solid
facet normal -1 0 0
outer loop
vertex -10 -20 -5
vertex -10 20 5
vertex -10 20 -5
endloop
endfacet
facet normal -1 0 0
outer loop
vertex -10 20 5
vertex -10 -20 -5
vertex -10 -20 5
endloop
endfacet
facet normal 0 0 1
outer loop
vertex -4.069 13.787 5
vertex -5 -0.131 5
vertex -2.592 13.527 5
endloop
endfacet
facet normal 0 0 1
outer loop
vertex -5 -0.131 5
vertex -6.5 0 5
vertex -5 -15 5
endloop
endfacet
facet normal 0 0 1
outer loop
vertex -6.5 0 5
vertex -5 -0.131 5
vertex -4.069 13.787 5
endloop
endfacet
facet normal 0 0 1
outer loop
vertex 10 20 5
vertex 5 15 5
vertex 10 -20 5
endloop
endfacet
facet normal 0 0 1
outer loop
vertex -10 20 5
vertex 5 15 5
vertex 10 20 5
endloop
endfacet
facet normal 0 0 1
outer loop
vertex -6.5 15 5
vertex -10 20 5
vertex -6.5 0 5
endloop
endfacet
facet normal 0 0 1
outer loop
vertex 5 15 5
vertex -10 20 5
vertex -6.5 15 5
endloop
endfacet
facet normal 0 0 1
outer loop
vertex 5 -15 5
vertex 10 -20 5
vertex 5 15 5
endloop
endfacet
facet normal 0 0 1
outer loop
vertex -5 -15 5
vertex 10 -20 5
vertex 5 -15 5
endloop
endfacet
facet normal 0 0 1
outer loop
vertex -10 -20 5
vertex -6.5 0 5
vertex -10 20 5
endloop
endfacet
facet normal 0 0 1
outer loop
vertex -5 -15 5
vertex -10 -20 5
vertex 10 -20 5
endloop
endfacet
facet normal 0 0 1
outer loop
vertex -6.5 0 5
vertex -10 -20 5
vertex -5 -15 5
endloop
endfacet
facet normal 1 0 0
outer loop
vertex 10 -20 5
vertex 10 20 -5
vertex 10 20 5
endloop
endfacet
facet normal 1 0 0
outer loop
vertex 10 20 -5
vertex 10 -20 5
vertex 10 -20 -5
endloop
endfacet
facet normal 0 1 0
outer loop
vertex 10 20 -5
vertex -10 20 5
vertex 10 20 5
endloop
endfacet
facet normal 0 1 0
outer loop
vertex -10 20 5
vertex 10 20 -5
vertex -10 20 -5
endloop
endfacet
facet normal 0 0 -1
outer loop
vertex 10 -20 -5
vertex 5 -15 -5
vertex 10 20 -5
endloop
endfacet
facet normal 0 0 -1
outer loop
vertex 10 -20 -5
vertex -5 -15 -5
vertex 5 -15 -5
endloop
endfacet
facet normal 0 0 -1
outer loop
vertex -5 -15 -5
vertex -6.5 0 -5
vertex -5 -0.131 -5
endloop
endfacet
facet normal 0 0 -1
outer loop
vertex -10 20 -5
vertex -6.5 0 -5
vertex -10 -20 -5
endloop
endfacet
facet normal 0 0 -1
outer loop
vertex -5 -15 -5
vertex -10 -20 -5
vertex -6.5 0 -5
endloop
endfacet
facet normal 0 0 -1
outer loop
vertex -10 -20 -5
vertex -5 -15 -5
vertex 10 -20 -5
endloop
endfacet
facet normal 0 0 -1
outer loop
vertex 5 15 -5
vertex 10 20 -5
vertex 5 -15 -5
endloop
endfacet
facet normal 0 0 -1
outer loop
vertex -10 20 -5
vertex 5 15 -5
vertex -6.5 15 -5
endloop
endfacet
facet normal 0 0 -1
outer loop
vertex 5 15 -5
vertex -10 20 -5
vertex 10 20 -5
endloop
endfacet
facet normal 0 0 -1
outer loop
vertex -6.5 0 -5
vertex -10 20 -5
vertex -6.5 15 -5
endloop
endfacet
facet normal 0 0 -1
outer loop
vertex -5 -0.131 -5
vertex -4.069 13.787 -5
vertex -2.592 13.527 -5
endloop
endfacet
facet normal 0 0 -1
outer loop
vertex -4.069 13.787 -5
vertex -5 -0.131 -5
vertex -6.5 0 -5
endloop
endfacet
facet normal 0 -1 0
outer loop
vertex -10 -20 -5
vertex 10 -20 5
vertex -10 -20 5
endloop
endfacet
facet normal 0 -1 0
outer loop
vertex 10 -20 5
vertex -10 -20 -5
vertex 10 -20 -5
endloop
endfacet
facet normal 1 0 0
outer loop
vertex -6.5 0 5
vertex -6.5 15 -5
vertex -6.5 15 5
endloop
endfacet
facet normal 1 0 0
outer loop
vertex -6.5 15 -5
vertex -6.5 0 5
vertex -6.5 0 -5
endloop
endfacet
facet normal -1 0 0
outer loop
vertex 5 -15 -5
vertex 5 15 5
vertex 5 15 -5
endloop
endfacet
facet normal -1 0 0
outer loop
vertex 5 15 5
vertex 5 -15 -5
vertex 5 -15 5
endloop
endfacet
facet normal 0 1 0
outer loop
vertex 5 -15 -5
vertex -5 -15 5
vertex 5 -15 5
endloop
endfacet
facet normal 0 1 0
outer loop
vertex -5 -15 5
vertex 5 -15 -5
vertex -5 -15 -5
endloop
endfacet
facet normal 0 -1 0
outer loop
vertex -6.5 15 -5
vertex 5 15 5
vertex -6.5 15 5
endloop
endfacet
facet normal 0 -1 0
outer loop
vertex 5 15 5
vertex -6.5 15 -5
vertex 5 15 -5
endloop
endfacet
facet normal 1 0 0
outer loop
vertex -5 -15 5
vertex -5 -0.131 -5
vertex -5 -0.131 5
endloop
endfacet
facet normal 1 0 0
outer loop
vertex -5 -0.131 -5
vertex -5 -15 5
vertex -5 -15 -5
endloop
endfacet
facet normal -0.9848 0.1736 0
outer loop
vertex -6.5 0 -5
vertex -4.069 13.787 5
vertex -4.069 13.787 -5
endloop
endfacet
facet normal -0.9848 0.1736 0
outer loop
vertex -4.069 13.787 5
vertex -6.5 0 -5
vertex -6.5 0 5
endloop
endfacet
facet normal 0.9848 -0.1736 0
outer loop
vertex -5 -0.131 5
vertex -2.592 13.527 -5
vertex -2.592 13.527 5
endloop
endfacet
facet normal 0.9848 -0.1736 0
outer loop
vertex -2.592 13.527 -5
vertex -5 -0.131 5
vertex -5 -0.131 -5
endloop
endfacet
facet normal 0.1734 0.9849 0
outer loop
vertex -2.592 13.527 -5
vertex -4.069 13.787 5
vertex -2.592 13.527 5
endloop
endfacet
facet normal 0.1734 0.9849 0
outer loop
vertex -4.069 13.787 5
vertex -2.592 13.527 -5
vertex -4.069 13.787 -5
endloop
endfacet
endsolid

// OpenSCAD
border = 5; //mm

w = 10;
h = 30;

d = 10;

spring_w = 1.5;
spring_l = h/2;
spring_angle = 10;

width = w + 2 * border;
height = h + 2 * border;
depth = d;

union() {

difference() {
    // Big Rectangle
    cube([width, height, depth], center = true);

    // cutout
    translate([-spring_w/2, 0, 0])
        cube([w+spring_w, h, d + 2], center = true);
}

// spring... bit
// extra
translate([-w/2 - spring_w, -h/2, -d/2])
    cube([spring_w, h - spring_l, d]);

// spring
translate([-w/2 - spring_w, h/2 - spring_l, -d/2])
    rotate([0, 0, -spring_angle])
        cube([spring_w, spring_l-1, d]);
}
